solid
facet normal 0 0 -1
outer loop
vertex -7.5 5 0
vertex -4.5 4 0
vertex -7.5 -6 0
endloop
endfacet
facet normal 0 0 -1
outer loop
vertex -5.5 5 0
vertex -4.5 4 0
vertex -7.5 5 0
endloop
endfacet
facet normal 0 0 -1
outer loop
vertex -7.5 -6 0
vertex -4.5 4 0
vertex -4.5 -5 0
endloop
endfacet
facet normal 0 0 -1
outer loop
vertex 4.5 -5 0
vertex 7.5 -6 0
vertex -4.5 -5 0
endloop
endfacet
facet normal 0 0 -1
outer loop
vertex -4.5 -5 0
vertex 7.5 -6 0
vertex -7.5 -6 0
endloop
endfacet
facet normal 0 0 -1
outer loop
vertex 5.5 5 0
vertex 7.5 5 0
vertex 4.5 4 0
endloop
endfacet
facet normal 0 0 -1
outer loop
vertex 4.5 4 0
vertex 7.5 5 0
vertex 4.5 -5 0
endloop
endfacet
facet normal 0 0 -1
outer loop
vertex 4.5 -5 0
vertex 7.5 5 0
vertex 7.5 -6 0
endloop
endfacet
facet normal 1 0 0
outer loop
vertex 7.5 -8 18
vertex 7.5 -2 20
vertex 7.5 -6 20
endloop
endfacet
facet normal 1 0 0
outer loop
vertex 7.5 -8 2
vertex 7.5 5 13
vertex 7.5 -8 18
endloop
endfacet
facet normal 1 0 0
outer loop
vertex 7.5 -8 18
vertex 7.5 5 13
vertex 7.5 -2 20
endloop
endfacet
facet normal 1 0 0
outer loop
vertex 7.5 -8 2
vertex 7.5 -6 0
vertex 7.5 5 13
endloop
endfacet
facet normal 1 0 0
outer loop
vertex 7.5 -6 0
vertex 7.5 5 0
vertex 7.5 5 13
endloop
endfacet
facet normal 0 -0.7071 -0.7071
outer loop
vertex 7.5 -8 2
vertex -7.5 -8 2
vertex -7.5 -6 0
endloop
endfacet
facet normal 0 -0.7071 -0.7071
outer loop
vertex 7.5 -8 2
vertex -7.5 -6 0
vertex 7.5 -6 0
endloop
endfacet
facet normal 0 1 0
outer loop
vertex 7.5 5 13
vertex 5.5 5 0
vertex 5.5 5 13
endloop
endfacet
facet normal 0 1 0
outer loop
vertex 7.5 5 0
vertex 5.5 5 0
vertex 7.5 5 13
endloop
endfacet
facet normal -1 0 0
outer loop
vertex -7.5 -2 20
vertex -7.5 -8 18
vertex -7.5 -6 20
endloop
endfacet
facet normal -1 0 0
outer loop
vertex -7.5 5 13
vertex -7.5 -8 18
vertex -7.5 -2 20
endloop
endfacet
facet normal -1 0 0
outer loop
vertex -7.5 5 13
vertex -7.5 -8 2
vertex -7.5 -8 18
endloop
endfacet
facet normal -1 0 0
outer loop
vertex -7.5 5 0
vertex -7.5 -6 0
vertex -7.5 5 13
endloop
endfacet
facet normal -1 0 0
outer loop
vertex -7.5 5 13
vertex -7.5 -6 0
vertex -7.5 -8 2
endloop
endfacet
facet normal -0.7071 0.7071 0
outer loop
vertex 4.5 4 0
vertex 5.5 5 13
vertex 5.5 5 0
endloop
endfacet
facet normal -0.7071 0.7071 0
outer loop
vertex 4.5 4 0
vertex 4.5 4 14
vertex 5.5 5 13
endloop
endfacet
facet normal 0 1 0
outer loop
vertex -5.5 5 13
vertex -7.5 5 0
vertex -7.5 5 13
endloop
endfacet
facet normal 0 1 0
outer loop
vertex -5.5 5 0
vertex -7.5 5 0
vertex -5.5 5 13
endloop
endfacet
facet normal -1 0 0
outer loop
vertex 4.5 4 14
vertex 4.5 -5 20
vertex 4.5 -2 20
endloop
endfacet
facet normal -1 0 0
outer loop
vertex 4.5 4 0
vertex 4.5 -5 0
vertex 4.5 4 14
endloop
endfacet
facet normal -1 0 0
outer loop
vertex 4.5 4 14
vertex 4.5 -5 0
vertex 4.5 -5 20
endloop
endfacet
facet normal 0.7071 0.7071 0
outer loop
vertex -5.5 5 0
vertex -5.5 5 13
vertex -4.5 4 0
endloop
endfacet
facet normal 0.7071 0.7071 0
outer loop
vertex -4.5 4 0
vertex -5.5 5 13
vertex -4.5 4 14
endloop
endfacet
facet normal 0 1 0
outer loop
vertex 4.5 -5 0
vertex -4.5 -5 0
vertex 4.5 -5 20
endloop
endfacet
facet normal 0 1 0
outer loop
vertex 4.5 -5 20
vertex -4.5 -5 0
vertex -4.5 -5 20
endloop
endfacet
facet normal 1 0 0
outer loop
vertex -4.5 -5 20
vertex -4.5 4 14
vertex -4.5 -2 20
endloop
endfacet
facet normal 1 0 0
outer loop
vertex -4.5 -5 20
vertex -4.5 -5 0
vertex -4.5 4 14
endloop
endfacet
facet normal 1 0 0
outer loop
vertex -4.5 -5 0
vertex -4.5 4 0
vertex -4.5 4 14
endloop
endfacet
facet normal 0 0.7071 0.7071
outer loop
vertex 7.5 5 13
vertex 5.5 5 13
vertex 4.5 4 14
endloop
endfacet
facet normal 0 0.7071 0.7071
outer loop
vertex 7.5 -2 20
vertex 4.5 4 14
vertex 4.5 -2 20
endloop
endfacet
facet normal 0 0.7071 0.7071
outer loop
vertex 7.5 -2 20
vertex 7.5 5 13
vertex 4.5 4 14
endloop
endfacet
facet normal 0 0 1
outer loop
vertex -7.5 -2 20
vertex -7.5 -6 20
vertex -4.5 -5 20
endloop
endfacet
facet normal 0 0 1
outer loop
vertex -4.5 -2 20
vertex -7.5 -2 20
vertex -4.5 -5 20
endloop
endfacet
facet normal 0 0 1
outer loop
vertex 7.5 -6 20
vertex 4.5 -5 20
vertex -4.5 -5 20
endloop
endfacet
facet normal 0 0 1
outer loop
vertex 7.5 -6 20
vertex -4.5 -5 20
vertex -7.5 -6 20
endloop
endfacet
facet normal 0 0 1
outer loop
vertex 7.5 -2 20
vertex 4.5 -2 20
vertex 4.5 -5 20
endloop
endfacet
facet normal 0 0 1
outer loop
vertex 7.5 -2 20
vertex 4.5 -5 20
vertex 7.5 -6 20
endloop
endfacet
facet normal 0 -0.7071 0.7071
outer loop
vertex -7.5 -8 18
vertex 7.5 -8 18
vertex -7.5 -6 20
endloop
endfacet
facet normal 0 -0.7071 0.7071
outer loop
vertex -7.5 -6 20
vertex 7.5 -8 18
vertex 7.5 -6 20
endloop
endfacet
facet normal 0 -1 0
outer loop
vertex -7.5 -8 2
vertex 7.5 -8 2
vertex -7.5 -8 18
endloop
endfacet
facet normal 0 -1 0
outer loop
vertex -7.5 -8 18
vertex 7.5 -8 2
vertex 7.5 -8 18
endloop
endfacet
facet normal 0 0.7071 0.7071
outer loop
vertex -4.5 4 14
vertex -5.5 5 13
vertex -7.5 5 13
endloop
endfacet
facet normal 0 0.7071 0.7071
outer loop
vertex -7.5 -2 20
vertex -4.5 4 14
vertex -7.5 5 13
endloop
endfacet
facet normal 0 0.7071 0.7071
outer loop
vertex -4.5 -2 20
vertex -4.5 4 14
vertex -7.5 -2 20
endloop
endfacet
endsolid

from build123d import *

# Parameters (mm, degrees)
PAD_DEPTH       = 20
CHAMFER_SIZE    = 1
CHAMFER001_SIZE = 2
POCKET_DEPTH    = 15.001


with BuildPart() as part:
    # Sketch → Pad (new body)
    with BuildSketch(Plane.XY):
        Polygon((-7.5, 5), (-7.5, -8), (7.5, -8), (7.5, 5), (4.5, 5), (4.5, -5), (-4.5, -5), (-4.5, 5), align=None)
    extrude(amount=PAD_DEPTH)

    # Chamfer
    chamfer_edges = [part.edges().sort_by_distance(p)[0] for p in [
        (-4.5, 5, 10),
        (4.5, 5, 10),
    ]]
    chamfer(chamfer_edges, length=CHAMFER_SIZE)

    # Chamfer001
    chamfer001_edges = [part.edges().sort_by_distance(p)[0] for p in [
        (0, -8, 20),
        (0, -8, 0),
    ]]
    chamfer(chamfer001_edges, length=CHAMFER001_SIZE)

    # Sketch001 (on Face2 of Chamfer001) → Pocket (cut, through all)
    with BuildSketch(Plane.YZ.offset(7.5)):
        Polygon((-2, 20), (5, 20), (5, 13), align=None)
    extrude(amount=-POCKET_DEPTH, mode=Mode.SUBTRACT)


solid = part.part
